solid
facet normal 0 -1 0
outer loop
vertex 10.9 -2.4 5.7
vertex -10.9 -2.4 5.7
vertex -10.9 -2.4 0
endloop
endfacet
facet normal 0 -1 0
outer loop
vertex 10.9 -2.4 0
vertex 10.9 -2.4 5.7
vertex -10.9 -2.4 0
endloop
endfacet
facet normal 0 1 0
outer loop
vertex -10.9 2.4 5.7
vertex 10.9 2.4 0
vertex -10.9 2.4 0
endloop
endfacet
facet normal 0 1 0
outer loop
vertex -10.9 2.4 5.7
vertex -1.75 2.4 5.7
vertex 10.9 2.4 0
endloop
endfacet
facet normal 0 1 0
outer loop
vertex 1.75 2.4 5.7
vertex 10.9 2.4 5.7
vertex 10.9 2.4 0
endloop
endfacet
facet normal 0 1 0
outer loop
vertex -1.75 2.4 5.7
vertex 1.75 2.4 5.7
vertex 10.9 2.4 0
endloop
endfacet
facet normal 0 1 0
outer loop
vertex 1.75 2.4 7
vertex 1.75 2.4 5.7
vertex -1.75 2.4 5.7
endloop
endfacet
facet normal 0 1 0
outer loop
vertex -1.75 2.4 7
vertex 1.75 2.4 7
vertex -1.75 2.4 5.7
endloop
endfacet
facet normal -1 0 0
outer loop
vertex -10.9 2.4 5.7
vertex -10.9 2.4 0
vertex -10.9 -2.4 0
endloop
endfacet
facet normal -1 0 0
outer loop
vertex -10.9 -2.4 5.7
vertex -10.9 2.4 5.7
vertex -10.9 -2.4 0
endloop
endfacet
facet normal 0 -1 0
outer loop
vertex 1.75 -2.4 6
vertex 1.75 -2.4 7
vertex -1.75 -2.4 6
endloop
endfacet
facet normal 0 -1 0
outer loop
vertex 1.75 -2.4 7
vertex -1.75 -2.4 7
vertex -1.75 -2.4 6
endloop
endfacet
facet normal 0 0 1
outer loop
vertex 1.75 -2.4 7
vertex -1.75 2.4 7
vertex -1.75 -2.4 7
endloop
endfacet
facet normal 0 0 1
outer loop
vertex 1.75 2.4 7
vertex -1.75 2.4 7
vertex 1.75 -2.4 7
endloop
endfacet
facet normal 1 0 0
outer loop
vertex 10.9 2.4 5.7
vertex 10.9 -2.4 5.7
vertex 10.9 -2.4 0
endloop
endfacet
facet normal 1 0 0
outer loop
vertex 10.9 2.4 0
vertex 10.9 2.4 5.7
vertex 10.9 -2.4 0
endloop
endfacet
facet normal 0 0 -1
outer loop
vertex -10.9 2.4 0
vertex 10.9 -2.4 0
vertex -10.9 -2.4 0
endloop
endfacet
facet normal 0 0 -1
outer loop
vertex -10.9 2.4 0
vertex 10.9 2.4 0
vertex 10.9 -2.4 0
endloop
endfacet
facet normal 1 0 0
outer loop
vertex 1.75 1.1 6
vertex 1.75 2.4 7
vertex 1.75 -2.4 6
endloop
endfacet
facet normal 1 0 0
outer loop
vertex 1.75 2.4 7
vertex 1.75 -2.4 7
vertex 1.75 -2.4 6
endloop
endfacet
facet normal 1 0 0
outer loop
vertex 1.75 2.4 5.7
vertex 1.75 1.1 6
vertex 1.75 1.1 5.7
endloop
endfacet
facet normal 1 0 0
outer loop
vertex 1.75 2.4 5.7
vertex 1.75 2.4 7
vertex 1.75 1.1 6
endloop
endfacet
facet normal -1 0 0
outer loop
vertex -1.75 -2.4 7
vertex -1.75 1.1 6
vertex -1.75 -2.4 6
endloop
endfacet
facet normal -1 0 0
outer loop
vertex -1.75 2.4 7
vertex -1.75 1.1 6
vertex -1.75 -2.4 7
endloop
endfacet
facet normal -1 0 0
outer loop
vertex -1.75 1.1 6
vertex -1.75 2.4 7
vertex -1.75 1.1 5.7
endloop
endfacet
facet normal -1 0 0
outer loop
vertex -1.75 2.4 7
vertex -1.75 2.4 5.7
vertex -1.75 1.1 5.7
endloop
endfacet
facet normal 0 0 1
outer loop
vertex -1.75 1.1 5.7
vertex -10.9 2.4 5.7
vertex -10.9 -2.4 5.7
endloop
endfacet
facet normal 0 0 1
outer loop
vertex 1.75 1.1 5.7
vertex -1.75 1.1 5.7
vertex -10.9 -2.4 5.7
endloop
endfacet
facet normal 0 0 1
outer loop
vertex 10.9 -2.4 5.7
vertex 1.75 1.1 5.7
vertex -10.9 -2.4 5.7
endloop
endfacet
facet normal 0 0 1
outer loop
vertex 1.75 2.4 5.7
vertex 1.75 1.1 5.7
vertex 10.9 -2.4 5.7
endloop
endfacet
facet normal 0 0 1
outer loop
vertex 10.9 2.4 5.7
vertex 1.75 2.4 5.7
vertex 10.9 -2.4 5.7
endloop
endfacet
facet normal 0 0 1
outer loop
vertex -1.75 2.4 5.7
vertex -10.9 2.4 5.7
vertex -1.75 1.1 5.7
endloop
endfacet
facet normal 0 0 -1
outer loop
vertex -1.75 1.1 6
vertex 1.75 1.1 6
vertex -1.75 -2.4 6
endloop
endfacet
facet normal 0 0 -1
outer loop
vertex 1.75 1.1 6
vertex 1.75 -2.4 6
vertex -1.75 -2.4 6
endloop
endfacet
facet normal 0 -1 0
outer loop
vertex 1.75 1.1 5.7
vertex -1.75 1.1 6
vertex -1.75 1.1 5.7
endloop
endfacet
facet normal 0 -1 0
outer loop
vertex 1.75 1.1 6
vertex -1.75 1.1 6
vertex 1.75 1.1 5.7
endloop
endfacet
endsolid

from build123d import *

# Parameters (mm, degrees)
ESQUISSE1_W             = 21.8
ESQUISSE1_H             = 4.8
BOSS_EXTRU_1_DEPTH      = 7
ESQUISSE2_W             = 9.15
ESQUISSE2_H             = 4.8
ENL_V_MAT_EXTRU_1_DEPTH = 1.3
ESQUISSE3_W             = 3.5
ESQUISSE3_H             = 0.3
ENL_V_MAT_EXTRU_2_DEPTH = 3.5


with BuildPart() as part:
    # Esquisse1 → Boss.-Extru.1 (new body)
    with BuildSketch(Plane.XY):
        Rectangle(ESQUISSE1_W, ESQUISSE1_H)
    extrude(amount=BOSS_EXTRU_1_DEPTH)

    # Esquisse2 → Enlèv. mat.-Extru.1 (cut)
    with BuildSketch(Plane.XY.offset(7)):
        with Locations((-6.325, 0)):
            Rectangle(ESQUISSE2_W, ESQUISSE2_H)
        with Locations((6.325, 0)):
            Rectangle(ESQUISSE2_W, ESQUISSE2_H)
    extrude(amount=-ENL_V_MAT_EXTRU_1_DEPTH, mode=Mode.SUBTRACT)

    # Esquisse3 → Enlèv. mat.-Extru.2 (cut)
    with BuildSketch(Plane.XZ.offset(2.4)):
        with Locations((0, 5.85)):
            Rectangle(ESQUISSE3_W, ESQUISSE3_H)
    extrude(amount=-ENL_V_MAT_EXTRU_2_DEPTH, mode=Mode.SUBTRACT)


solid = part.part
